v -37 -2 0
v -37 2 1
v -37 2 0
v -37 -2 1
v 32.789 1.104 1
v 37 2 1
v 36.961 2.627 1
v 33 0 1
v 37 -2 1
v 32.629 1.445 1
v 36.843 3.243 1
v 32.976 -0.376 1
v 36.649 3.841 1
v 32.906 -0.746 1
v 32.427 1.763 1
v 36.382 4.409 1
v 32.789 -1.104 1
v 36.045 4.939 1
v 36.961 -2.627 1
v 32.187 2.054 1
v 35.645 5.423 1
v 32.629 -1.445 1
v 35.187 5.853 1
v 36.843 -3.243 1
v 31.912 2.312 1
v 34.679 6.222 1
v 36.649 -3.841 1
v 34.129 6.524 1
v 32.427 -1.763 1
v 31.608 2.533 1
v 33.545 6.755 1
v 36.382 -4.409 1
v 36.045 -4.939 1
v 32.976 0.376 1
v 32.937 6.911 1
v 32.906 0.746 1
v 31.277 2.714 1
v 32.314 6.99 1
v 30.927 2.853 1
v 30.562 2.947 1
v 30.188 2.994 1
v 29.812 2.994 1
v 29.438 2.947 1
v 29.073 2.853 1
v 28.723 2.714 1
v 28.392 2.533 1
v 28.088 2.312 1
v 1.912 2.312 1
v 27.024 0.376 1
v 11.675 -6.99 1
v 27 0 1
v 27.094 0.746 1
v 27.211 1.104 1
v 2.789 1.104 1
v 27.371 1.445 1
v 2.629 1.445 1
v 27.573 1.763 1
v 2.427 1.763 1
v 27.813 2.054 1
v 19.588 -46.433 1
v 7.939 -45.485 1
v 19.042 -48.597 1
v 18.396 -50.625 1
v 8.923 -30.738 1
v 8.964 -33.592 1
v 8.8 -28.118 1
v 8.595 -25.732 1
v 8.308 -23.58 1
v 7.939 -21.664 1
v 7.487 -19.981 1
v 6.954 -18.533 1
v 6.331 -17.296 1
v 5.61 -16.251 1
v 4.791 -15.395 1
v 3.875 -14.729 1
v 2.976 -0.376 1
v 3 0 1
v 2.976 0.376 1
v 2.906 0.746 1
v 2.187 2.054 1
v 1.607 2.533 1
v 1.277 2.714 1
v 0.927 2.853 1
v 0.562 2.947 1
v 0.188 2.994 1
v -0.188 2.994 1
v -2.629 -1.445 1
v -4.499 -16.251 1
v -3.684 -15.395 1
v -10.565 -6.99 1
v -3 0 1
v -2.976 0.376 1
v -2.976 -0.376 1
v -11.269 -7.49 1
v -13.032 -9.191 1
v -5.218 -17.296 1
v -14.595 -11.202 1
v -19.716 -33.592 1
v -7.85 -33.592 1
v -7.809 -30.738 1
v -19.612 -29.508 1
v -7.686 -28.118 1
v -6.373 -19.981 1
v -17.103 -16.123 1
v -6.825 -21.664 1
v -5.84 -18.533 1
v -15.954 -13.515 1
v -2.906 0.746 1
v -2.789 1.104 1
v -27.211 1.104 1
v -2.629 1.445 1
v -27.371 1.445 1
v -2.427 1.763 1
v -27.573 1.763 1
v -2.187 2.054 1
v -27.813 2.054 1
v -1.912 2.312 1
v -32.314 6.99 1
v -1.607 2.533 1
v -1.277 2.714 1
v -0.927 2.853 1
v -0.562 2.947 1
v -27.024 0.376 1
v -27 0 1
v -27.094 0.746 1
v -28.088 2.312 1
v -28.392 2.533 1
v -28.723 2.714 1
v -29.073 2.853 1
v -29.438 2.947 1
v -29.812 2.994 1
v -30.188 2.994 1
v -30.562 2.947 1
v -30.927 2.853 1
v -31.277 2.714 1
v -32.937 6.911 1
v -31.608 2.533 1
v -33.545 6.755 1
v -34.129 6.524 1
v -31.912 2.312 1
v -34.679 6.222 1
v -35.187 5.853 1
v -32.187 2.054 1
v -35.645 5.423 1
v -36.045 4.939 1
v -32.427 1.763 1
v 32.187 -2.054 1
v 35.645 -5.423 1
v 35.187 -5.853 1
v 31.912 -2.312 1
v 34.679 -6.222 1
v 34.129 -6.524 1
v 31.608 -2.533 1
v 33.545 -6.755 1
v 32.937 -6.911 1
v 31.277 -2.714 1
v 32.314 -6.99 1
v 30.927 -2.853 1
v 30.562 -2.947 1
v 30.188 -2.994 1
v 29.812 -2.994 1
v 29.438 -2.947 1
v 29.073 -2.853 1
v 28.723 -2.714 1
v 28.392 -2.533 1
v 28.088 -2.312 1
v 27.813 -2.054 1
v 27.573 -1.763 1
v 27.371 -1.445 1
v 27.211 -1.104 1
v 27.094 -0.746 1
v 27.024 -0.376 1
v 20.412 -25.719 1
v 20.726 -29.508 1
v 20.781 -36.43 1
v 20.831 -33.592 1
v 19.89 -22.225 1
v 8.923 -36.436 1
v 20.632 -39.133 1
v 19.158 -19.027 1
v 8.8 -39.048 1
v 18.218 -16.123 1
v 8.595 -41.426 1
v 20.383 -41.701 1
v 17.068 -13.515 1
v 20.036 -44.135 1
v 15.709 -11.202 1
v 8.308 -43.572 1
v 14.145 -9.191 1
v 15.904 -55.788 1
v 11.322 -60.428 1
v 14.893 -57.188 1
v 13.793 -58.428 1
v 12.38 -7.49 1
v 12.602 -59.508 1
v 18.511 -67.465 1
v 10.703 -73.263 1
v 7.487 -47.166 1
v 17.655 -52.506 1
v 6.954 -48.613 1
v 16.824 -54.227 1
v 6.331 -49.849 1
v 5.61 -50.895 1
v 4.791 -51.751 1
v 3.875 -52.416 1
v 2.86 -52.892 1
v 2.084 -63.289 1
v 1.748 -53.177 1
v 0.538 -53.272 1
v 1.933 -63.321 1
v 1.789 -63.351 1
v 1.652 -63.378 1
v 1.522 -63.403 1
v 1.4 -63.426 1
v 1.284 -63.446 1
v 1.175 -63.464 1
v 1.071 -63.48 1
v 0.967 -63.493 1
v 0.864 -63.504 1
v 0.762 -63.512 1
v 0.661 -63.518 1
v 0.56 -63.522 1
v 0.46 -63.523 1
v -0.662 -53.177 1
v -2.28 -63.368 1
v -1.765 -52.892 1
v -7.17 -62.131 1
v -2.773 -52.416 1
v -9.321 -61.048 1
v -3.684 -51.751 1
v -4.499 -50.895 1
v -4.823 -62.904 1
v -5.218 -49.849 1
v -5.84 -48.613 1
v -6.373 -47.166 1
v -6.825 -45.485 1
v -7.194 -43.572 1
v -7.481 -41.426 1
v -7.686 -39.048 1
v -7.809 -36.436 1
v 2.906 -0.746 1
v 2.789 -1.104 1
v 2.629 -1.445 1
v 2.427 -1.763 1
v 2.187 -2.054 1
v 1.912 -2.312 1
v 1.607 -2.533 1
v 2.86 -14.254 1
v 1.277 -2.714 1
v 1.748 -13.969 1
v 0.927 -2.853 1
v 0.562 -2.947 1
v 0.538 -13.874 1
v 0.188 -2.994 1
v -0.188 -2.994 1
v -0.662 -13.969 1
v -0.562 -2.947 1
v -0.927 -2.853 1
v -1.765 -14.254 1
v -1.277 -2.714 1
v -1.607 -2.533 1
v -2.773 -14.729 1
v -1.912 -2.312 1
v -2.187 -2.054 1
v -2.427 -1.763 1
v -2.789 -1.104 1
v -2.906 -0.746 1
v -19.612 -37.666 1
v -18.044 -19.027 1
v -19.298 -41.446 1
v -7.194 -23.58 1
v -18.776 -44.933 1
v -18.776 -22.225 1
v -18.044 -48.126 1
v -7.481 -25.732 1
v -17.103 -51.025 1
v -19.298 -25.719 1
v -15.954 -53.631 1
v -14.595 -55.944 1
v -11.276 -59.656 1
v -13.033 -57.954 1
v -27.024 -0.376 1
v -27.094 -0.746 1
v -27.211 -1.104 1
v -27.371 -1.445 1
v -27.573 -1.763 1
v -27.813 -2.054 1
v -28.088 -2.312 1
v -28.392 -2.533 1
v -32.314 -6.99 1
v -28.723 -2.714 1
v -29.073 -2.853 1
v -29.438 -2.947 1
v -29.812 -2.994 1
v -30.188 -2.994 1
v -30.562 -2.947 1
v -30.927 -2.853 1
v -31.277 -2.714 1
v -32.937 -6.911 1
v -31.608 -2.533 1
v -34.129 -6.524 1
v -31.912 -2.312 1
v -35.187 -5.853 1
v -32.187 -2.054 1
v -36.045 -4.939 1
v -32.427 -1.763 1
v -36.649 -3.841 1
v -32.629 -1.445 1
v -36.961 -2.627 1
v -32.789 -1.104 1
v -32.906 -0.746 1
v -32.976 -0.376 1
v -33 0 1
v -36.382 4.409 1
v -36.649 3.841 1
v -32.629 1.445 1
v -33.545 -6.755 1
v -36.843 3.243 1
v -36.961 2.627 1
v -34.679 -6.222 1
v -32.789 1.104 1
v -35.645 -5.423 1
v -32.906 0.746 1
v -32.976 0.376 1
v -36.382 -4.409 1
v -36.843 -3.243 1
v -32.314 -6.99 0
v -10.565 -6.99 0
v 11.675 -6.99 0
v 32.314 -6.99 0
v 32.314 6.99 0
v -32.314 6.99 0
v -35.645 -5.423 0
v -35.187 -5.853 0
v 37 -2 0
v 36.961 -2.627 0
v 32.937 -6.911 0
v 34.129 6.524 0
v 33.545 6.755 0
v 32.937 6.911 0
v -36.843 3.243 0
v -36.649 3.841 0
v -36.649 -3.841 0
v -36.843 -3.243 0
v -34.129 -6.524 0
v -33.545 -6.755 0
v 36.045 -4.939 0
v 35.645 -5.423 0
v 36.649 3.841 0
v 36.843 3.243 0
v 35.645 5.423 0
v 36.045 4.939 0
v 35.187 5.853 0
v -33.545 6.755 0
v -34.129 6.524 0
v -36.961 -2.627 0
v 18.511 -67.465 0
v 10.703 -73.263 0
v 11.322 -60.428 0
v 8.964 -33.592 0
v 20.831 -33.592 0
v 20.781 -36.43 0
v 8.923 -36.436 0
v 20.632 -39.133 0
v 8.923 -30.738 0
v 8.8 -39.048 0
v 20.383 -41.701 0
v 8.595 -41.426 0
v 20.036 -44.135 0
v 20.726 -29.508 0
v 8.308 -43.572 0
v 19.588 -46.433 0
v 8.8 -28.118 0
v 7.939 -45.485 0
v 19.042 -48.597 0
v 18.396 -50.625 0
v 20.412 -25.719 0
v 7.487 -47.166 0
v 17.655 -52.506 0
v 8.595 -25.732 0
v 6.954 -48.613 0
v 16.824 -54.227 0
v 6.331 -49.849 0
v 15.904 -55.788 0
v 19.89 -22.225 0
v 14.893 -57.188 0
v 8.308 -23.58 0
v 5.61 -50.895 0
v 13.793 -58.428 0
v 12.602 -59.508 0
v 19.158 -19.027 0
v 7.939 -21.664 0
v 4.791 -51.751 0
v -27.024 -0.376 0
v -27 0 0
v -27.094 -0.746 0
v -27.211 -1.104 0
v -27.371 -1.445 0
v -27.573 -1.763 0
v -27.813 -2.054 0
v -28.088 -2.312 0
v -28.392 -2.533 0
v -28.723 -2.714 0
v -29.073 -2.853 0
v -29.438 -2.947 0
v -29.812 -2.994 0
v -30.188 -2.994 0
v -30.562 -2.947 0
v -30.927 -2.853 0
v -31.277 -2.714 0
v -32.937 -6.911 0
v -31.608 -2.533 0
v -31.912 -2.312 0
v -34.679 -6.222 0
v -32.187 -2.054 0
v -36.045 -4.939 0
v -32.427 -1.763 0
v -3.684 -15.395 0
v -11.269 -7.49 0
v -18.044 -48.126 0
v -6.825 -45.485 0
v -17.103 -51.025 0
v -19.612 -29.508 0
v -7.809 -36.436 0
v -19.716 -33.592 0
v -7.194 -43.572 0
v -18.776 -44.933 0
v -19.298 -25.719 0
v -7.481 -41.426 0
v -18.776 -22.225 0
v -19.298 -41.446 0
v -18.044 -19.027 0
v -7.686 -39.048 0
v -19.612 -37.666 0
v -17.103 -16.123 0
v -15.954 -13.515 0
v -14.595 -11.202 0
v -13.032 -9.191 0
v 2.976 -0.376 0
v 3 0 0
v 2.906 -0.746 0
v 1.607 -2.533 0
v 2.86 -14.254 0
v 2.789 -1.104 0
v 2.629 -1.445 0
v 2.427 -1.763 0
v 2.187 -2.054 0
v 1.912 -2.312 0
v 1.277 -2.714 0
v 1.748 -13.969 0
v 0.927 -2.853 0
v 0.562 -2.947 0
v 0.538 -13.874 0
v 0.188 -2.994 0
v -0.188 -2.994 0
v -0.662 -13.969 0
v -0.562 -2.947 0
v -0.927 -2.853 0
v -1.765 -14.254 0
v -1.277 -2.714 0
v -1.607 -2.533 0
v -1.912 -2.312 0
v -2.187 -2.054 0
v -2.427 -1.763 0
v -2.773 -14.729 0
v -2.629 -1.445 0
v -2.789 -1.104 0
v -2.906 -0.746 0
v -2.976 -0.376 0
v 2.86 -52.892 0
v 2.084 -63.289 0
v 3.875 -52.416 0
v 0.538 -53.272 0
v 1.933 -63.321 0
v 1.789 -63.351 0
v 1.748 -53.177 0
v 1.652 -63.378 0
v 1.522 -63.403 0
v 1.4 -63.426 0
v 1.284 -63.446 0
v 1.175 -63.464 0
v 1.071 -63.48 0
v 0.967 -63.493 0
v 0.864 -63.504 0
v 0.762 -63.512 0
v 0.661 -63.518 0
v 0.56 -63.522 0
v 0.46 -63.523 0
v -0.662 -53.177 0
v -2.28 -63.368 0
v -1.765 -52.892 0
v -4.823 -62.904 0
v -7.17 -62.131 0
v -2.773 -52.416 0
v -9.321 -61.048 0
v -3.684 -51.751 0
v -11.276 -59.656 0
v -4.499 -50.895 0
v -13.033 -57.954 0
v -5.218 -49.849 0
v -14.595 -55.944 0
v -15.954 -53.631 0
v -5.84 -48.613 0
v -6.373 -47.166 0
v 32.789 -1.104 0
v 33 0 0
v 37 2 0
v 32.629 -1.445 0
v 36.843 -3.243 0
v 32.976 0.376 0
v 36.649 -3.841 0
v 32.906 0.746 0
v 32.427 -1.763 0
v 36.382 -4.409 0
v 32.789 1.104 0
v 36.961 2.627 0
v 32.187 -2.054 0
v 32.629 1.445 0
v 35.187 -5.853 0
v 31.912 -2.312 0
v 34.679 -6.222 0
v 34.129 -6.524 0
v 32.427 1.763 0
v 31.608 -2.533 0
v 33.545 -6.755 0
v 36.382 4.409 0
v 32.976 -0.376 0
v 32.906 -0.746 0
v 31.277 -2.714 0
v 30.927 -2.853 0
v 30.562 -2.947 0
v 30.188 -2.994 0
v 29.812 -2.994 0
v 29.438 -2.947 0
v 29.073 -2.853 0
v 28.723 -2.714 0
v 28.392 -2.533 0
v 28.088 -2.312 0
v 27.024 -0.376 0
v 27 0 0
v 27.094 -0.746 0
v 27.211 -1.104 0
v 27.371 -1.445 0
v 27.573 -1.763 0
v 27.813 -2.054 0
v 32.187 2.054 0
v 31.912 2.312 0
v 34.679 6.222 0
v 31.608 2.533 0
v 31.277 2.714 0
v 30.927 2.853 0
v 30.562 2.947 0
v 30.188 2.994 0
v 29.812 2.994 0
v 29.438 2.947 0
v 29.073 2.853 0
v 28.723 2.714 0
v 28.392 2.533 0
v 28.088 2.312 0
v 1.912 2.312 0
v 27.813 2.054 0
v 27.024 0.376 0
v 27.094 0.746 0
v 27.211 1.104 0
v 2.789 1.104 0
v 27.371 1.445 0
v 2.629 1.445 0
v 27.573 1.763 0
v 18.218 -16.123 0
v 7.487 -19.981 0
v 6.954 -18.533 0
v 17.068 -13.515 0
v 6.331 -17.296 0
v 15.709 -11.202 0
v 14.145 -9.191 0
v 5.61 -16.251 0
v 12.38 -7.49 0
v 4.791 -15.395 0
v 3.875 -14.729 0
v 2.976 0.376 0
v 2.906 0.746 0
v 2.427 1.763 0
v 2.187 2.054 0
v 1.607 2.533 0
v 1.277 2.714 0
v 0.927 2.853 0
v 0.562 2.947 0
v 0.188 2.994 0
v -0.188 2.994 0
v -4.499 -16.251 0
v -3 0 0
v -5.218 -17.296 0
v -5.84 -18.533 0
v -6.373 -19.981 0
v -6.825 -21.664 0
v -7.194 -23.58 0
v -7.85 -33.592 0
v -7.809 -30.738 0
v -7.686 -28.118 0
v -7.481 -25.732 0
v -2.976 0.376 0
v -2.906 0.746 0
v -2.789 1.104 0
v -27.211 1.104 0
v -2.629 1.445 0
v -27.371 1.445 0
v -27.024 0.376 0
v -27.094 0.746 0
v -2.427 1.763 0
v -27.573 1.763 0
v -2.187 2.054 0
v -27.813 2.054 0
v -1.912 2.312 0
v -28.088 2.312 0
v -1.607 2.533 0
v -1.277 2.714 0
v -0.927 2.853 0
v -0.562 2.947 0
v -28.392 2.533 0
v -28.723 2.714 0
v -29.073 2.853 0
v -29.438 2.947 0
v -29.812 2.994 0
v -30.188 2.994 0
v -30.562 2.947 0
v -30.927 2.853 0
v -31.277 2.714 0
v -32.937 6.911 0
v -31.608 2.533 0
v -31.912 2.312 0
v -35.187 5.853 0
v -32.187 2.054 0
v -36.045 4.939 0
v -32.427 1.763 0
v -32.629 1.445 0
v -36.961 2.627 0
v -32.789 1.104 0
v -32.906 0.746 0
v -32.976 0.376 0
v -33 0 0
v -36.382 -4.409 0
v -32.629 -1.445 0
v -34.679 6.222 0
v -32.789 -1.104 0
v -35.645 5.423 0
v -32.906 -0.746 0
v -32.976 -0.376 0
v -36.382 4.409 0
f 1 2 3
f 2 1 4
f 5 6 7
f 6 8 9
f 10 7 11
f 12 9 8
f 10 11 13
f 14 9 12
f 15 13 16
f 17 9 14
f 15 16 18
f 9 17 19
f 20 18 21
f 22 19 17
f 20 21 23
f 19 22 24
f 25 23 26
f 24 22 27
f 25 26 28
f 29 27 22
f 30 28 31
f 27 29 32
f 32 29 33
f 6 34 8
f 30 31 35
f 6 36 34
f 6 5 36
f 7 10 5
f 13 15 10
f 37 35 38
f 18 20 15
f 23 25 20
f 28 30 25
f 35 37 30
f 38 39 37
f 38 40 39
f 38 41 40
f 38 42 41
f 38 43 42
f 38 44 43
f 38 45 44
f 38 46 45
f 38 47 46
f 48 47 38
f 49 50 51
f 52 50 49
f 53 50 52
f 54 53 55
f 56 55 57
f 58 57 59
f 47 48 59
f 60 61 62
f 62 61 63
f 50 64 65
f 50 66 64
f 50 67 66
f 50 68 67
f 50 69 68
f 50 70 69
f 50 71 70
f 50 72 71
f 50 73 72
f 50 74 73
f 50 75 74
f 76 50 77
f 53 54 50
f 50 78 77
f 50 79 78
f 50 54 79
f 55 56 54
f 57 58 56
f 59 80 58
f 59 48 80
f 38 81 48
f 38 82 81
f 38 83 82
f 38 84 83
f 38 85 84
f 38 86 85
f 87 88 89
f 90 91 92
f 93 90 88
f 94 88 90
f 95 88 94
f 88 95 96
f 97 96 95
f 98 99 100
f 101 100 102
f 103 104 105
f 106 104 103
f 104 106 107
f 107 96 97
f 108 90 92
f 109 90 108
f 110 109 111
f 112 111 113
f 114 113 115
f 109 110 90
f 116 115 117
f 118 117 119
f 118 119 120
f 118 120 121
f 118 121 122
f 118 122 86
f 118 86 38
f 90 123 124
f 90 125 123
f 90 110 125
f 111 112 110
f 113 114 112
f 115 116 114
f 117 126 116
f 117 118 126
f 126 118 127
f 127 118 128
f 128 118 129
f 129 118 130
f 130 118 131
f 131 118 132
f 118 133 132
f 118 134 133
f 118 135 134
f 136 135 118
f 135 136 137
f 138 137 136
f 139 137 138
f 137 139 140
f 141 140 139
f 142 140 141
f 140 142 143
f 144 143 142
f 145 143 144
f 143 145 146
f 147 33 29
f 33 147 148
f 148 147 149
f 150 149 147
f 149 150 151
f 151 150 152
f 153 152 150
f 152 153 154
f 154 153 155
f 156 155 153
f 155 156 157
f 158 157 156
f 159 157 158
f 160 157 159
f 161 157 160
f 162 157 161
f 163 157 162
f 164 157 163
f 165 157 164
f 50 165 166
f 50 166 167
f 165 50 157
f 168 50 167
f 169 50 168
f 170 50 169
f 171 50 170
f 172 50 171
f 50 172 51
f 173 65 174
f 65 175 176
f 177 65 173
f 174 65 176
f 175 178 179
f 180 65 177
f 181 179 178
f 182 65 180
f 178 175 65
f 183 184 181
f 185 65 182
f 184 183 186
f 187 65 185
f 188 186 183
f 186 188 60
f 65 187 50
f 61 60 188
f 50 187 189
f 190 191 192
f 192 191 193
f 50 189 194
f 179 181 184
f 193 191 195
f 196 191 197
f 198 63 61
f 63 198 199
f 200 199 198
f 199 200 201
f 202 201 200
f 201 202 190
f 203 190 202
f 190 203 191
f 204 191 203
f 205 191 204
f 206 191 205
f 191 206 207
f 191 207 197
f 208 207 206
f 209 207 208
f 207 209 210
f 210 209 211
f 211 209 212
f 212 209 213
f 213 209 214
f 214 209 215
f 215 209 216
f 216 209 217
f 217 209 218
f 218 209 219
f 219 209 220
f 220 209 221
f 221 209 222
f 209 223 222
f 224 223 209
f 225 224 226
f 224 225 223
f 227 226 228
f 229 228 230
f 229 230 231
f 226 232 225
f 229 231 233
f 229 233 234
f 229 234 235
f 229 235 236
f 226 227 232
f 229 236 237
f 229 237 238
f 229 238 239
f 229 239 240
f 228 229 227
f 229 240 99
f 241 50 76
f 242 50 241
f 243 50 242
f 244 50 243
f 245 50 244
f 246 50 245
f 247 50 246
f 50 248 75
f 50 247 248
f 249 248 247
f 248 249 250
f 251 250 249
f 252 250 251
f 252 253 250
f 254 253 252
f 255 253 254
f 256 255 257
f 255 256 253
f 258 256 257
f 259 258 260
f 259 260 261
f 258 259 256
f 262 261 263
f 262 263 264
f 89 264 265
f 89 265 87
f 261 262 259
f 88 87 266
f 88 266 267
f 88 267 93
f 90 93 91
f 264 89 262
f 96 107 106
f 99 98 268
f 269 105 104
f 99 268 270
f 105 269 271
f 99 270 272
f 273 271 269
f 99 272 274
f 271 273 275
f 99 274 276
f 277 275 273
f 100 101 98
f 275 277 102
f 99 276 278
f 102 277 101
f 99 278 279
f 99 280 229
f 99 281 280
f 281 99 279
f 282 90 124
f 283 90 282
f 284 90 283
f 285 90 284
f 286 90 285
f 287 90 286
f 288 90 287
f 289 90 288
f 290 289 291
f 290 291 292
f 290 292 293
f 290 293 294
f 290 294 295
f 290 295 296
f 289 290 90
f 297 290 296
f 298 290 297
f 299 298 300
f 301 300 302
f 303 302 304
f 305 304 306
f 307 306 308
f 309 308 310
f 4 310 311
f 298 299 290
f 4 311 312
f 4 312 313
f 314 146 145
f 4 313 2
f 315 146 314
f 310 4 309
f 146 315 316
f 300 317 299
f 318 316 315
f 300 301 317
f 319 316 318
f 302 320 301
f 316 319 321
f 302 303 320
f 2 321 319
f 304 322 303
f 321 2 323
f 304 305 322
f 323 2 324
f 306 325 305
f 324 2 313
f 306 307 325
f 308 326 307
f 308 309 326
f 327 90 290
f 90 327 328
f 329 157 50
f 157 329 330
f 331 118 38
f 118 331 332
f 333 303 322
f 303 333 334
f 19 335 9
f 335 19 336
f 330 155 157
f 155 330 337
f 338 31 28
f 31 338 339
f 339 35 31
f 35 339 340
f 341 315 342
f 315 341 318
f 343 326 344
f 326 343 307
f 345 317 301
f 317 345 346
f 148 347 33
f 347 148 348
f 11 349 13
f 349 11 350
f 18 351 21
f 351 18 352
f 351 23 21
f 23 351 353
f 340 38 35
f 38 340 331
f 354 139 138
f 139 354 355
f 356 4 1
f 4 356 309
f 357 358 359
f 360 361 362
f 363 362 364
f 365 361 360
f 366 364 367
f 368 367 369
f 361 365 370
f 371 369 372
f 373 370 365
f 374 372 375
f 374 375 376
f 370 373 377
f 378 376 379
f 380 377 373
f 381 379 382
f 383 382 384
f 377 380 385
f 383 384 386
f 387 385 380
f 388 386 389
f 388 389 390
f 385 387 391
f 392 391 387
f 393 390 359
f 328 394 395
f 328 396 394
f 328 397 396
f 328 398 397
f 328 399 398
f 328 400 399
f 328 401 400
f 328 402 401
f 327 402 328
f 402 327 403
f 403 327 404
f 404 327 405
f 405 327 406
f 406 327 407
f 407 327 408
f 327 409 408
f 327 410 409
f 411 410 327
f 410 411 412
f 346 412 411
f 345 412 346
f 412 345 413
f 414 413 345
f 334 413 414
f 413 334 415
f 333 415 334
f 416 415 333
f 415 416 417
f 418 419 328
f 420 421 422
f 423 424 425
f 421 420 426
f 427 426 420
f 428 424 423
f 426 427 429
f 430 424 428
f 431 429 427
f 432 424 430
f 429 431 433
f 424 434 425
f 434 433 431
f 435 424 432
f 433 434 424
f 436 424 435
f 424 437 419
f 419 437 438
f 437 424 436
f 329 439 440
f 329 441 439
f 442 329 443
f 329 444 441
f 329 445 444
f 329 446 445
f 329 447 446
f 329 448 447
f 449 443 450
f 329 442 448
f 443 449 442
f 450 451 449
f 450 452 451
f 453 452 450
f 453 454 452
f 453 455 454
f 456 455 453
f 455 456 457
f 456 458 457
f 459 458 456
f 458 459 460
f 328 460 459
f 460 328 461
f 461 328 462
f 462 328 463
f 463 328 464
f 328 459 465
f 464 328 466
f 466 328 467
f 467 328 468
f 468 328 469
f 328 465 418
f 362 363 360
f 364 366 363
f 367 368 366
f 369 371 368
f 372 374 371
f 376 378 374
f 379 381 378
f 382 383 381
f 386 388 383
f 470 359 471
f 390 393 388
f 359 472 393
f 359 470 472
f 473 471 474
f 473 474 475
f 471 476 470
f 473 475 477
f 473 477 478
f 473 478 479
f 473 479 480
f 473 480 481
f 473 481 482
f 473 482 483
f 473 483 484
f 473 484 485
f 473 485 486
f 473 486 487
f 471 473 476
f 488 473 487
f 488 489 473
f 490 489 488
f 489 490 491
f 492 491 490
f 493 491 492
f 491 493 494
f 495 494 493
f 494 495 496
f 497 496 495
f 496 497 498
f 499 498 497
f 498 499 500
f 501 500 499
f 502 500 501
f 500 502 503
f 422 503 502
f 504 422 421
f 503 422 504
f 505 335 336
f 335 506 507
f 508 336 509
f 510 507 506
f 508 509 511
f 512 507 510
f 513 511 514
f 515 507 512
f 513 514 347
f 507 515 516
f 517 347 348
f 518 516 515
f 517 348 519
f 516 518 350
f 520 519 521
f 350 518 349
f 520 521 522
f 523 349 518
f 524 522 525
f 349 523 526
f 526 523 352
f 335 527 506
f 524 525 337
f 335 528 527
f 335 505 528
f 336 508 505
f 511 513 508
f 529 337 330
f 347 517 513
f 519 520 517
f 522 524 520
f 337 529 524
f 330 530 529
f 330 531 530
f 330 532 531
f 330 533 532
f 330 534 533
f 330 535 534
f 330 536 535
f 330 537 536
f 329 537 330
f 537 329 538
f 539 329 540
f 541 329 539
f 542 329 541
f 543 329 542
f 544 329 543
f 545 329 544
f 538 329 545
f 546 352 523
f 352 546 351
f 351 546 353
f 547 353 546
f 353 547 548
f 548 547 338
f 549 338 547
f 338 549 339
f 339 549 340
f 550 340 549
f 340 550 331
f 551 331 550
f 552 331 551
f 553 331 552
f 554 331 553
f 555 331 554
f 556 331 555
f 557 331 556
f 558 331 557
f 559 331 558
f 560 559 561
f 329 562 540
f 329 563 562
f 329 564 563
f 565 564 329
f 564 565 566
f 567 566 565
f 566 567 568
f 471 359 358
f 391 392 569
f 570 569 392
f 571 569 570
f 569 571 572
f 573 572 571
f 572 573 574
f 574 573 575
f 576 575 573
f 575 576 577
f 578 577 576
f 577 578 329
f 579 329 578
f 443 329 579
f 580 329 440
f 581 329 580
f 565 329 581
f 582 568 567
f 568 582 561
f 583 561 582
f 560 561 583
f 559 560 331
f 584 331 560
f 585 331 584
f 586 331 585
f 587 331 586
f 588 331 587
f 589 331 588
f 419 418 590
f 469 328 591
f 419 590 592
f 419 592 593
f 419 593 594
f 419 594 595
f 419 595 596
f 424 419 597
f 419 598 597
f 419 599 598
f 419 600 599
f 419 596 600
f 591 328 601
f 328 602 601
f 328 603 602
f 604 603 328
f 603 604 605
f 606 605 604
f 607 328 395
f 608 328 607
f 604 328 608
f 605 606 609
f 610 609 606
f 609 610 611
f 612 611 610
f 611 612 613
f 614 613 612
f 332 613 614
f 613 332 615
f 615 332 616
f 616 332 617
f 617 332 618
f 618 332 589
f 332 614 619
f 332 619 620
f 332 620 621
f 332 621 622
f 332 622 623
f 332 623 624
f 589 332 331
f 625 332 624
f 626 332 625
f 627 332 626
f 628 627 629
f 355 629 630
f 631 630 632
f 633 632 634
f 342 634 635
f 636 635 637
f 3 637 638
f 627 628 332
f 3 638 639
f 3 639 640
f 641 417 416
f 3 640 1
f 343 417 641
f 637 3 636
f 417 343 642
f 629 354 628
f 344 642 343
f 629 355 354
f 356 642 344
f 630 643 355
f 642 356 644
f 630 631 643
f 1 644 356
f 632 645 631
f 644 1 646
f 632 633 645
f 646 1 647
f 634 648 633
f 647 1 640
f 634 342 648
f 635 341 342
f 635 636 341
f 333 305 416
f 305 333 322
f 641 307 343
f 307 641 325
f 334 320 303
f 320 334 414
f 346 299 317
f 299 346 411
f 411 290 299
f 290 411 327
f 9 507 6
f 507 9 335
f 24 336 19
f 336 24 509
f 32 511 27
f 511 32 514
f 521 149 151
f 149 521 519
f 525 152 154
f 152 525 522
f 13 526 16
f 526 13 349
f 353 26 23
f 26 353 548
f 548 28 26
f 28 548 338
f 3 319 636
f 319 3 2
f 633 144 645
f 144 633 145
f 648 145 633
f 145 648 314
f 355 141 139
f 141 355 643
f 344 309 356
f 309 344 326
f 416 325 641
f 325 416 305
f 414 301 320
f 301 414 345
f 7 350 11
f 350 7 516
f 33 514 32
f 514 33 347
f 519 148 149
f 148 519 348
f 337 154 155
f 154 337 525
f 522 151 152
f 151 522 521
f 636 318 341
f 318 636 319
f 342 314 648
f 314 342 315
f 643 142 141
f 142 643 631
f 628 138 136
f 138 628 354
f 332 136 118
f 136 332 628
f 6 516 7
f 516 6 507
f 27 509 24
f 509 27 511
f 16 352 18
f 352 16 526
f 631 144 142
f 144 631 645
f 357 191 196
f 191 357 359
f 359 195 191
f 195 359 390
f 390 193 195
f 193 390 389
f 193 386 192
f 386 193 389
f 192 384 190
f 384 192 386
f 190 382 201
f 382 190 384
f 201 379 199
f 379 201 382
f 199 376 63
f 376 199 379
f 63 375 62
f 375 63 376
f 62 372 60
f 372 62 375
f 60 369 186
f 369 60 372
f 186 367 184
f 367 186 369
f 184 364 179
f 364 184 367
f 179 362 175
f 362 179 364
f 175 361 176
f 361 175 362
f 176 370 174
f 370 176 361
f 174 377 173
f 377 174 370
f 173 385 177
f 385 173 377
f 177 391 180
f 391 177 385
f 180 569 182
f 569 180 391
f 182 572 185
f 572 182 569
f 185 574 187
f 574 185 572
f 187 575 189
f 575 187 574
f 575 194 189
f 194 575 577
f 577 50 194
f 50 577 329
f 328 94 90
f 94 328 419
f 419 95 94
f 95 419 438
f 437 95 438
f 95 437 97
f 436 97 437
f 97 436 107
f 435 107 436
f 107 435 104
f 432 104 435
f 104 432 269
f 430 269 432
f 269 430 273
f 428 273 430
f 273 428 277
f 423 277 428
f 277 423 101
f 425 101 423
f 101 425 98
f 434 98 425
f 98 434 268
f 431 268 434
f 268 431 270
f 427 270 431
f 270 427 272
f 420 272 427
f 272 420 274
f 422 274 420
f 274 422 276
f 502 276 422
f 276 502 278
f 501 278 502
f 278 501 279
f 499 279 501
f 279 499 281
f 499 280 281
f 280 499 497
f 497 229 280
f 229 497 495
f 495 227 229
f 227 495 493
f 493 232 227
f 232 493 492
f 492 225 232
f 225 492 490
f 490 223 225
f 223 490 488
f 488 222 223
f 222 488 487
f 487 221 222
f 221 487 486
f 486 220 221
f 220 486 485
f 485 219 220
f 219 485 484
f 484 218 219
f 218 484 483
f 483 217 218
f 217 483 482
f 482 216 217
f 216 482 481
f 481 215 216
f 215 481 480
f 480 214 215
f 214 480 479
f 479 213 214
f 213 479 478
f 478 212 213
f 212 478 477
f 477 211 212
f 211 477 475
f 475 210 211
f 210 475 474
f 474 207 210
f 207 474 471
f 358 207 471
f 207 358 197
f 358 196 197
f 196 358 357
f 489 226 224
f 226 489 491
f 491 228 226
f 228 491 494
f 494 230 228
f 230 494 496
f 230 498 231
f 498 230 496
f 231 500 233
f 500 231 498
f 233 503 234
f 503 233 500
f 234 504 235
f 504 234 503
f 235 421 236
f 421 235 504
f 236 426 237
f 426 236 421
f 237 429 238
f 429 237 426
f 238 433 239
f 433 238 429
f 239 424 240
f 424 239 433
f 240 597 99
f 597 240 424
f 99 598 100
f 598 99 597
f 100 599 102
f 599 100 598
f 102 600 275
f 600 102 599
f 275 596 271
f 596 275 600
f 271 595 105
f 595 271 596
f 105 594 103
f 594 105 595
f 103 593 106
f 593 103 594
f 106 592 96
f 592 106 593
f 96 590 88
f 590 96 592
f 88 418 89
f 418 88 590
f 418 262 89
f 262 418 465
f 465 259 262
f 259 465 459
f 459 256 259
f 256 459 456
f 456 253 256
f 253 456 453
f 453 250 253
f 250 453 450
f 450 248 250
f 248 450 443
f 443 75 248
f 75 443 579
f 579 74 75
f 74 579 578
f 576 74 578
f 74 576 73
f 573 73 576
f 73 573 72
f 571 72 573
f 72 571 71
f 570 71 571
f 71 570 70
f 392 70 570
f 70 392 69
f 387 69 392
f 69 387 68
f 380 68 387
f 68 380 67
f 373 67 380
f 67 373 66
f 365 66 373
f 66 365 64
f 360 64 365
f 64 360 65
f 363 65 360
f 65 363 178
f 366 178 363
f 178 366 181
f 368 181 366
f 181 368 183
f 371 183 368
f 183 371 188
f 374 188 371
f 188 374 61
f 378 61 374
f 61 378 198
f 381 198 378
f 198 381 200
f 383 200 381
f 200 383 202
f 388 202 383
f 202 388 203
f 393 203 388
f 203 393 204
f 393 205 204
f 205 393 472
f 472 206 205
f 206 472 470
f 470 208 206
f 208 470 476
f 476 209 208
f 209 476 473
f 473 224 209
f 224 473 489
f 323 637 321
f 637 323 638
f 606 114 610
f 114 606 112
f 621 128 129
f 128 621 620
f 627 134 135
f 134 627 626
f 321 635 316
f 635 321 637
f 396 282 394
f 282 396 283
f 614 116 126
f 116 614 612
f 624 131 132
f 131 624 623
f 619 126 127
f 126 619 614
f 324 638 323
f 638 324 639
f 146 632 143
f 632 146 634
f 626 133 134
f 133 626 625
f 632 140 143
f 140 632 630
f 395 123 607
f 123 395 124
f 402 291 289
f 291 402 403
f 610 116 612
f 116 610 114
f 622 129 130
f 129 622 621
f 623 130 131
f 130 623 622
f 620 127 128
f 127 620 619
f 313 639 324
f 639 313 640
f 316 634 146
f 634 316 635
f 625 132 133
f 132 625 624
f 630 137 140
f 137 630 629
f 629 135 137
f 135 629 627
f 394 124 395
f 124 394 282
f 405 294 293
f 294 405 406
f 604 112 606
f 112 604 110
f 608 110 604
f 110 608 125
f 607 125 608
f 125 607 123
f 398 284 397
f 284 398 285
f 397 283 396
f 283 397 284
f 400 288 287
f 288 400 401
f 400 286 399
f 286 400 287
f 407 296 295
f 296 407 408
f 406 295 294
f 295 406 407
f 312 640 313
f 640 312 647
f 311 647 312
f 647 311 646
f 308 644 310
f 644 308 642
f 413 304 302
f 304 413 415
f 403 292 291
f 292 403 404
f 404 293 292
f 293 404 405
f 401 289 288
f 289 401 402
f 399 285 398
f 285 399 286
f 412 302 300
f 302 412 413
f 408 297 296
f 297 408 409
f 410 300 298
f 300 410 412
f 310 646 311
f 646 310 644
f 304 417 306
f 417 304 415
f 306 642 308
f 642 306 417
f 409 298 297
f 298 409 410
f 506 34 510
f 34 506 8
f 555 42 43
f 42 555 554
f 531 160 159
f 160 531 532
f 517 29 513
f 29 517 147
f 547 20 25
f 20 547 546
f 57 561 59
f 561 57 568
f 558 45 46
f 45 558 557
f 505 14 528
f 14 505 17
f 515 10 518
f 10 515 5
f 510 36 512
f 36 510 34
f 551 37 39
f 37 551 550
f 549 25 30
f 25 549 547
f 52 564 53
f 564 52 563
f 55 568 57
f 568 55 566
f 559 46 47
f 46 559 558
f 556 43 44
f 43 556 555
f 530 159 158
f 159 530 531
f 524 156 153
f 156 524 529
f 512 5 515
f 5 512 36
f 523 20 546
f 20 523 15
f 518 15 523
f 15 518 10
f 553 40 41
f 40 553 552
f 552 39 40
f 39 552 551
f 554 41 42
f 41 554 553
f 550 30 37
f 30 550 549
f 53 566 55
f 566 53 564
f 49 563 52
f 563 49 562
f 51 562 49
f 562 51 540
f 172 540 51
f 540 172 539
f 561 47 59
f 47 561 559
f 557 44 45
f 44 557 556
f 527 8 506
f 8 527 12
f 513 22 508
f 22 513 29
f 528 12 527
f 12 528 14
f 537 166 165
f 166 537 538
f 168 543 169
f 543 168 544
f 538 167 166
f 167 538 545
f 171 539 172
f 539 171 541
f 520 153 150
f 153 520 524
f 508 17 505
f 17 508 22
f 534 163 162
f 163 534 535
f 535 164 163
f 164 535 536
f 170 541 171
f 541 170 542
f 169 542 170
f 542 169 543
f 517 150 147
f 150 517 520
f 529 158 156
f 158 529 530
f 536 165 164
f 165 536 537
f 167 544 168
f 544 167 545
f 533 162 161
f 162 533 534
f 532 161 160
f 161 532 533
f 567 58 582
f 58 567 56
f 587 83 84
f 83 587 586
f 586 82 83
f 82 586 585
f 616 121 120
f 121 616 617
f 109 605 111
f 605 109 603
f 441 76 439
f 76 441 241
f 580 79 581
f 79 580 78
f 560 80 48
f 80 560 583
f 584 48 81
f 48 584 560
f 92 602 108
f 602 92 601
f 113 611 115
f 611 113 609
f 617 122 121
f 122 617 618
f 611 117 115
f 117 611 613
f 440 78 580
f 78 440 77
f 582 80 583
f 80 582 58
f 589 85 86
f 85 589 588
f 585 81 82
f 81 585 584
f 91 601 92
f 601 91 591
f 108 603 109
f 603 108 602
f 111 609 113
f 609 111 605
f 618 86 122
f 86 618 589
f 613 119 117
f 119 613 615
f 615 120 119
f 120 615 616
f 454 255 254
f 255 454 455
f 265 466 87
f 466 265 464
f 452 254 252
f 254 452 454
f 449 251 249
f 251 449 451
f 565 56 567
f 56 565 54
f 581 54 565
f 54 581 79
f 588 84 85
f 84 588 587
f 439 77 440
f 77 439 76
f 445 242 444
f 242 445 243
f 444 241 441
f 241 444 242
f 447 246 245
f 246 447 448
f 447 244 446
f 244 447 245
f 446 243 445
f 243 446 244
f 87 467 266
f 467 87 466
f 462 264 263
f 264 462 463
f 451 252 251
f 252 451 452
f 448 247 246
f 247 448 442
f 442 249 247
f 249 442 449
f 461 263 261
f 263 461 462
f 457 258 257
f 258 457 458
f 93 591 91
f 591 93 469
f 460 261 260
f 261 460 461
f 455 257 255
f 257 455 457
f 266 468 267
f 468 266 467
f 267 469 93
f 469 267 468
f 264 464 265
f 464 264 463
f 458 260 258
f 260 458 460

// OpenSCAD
$fn = 50;


difference() {
	union() {
		translate(v = [0, 0, 0]) {
			rotate(a = [0, 0, 0]) {
				hull() {
					translate(v = [-32.0000000000, 2.0000000000, 0]) {
						rotate(a = [0, 0, 0]) {
							translate(v = [0, 0, 0]) {
								rotate(a = [0, 0, 0]) {
									cylinder(h = 1, r = 5);
								}
							}
						}
					}
					translate(v = [32.0000000000, 2.0000000000, 0]) {
						rotate(a = [0, 0, 0]) {
							translate(v = [0, 0, 0]) {
								rotate(a = [0, 0, 0]) {
									cylinder(h = 1, r = 5);
								}
							}
						}
					}
					translate(v = [-32.0000000000, -2.0000000000, 0]) {
						rotate(a = [0, 0, 0]) {
							translate(v = [0, 0, 0]) {
								rotate(a = [0, 0, 0]) {
									cylinder(h = 1, r = 5);
								}
							}
						}
					}
					translate(v = [32.0000000000, -2.0000000000, 0]) {
						rotate(a = [0, 0, 0]) {
							translate(v = [0, 0, 0]) {
								rotate(a = [0, 0, 0]) {
									cylinder(h = 1, r = 5);
								}
							}
						}
					}
				}
			}
		}
		translate(v = [0, -5, 0]) {
			rotate(a = [0, 0, 0]) {
				linear_extrude(height = 1) {
					text(font = "DejaVu Sans Mono:style=Bold", halign = "center", size = 57.0000000000, text = "Q", valign = "top");
				}
			}
		}
	}
	union() {
		translate(v = [-30.0000000000, 0.0000000000, -125.0000000000]) {
			rotate(a = [0, 0, 0]) {
				cylinder(h = 250, r = 3.0000000000);
			}
		}
		translate(v = [30.0000000000, 0.0000000000, -125.0000000000]) {
			rotate(a = [0, 0, 0]) {
				cylinder(h = 250, r = 3.0000000000);
			}
		}
		translate(v = [30.0000000000, 0.0000000000, -125.0000000000]) {
			rotate(a = [0, 0, 0]) {
				cylinder(h = 250, r = 3.0000000000);
			}
		}
		translate(v = [0, 0, -125.0000000000]) {
			rotate(a = [0, 0, 0]) {
				cylinder(h = 250, r = 3.0000000000);
			}
		}
	}
}
